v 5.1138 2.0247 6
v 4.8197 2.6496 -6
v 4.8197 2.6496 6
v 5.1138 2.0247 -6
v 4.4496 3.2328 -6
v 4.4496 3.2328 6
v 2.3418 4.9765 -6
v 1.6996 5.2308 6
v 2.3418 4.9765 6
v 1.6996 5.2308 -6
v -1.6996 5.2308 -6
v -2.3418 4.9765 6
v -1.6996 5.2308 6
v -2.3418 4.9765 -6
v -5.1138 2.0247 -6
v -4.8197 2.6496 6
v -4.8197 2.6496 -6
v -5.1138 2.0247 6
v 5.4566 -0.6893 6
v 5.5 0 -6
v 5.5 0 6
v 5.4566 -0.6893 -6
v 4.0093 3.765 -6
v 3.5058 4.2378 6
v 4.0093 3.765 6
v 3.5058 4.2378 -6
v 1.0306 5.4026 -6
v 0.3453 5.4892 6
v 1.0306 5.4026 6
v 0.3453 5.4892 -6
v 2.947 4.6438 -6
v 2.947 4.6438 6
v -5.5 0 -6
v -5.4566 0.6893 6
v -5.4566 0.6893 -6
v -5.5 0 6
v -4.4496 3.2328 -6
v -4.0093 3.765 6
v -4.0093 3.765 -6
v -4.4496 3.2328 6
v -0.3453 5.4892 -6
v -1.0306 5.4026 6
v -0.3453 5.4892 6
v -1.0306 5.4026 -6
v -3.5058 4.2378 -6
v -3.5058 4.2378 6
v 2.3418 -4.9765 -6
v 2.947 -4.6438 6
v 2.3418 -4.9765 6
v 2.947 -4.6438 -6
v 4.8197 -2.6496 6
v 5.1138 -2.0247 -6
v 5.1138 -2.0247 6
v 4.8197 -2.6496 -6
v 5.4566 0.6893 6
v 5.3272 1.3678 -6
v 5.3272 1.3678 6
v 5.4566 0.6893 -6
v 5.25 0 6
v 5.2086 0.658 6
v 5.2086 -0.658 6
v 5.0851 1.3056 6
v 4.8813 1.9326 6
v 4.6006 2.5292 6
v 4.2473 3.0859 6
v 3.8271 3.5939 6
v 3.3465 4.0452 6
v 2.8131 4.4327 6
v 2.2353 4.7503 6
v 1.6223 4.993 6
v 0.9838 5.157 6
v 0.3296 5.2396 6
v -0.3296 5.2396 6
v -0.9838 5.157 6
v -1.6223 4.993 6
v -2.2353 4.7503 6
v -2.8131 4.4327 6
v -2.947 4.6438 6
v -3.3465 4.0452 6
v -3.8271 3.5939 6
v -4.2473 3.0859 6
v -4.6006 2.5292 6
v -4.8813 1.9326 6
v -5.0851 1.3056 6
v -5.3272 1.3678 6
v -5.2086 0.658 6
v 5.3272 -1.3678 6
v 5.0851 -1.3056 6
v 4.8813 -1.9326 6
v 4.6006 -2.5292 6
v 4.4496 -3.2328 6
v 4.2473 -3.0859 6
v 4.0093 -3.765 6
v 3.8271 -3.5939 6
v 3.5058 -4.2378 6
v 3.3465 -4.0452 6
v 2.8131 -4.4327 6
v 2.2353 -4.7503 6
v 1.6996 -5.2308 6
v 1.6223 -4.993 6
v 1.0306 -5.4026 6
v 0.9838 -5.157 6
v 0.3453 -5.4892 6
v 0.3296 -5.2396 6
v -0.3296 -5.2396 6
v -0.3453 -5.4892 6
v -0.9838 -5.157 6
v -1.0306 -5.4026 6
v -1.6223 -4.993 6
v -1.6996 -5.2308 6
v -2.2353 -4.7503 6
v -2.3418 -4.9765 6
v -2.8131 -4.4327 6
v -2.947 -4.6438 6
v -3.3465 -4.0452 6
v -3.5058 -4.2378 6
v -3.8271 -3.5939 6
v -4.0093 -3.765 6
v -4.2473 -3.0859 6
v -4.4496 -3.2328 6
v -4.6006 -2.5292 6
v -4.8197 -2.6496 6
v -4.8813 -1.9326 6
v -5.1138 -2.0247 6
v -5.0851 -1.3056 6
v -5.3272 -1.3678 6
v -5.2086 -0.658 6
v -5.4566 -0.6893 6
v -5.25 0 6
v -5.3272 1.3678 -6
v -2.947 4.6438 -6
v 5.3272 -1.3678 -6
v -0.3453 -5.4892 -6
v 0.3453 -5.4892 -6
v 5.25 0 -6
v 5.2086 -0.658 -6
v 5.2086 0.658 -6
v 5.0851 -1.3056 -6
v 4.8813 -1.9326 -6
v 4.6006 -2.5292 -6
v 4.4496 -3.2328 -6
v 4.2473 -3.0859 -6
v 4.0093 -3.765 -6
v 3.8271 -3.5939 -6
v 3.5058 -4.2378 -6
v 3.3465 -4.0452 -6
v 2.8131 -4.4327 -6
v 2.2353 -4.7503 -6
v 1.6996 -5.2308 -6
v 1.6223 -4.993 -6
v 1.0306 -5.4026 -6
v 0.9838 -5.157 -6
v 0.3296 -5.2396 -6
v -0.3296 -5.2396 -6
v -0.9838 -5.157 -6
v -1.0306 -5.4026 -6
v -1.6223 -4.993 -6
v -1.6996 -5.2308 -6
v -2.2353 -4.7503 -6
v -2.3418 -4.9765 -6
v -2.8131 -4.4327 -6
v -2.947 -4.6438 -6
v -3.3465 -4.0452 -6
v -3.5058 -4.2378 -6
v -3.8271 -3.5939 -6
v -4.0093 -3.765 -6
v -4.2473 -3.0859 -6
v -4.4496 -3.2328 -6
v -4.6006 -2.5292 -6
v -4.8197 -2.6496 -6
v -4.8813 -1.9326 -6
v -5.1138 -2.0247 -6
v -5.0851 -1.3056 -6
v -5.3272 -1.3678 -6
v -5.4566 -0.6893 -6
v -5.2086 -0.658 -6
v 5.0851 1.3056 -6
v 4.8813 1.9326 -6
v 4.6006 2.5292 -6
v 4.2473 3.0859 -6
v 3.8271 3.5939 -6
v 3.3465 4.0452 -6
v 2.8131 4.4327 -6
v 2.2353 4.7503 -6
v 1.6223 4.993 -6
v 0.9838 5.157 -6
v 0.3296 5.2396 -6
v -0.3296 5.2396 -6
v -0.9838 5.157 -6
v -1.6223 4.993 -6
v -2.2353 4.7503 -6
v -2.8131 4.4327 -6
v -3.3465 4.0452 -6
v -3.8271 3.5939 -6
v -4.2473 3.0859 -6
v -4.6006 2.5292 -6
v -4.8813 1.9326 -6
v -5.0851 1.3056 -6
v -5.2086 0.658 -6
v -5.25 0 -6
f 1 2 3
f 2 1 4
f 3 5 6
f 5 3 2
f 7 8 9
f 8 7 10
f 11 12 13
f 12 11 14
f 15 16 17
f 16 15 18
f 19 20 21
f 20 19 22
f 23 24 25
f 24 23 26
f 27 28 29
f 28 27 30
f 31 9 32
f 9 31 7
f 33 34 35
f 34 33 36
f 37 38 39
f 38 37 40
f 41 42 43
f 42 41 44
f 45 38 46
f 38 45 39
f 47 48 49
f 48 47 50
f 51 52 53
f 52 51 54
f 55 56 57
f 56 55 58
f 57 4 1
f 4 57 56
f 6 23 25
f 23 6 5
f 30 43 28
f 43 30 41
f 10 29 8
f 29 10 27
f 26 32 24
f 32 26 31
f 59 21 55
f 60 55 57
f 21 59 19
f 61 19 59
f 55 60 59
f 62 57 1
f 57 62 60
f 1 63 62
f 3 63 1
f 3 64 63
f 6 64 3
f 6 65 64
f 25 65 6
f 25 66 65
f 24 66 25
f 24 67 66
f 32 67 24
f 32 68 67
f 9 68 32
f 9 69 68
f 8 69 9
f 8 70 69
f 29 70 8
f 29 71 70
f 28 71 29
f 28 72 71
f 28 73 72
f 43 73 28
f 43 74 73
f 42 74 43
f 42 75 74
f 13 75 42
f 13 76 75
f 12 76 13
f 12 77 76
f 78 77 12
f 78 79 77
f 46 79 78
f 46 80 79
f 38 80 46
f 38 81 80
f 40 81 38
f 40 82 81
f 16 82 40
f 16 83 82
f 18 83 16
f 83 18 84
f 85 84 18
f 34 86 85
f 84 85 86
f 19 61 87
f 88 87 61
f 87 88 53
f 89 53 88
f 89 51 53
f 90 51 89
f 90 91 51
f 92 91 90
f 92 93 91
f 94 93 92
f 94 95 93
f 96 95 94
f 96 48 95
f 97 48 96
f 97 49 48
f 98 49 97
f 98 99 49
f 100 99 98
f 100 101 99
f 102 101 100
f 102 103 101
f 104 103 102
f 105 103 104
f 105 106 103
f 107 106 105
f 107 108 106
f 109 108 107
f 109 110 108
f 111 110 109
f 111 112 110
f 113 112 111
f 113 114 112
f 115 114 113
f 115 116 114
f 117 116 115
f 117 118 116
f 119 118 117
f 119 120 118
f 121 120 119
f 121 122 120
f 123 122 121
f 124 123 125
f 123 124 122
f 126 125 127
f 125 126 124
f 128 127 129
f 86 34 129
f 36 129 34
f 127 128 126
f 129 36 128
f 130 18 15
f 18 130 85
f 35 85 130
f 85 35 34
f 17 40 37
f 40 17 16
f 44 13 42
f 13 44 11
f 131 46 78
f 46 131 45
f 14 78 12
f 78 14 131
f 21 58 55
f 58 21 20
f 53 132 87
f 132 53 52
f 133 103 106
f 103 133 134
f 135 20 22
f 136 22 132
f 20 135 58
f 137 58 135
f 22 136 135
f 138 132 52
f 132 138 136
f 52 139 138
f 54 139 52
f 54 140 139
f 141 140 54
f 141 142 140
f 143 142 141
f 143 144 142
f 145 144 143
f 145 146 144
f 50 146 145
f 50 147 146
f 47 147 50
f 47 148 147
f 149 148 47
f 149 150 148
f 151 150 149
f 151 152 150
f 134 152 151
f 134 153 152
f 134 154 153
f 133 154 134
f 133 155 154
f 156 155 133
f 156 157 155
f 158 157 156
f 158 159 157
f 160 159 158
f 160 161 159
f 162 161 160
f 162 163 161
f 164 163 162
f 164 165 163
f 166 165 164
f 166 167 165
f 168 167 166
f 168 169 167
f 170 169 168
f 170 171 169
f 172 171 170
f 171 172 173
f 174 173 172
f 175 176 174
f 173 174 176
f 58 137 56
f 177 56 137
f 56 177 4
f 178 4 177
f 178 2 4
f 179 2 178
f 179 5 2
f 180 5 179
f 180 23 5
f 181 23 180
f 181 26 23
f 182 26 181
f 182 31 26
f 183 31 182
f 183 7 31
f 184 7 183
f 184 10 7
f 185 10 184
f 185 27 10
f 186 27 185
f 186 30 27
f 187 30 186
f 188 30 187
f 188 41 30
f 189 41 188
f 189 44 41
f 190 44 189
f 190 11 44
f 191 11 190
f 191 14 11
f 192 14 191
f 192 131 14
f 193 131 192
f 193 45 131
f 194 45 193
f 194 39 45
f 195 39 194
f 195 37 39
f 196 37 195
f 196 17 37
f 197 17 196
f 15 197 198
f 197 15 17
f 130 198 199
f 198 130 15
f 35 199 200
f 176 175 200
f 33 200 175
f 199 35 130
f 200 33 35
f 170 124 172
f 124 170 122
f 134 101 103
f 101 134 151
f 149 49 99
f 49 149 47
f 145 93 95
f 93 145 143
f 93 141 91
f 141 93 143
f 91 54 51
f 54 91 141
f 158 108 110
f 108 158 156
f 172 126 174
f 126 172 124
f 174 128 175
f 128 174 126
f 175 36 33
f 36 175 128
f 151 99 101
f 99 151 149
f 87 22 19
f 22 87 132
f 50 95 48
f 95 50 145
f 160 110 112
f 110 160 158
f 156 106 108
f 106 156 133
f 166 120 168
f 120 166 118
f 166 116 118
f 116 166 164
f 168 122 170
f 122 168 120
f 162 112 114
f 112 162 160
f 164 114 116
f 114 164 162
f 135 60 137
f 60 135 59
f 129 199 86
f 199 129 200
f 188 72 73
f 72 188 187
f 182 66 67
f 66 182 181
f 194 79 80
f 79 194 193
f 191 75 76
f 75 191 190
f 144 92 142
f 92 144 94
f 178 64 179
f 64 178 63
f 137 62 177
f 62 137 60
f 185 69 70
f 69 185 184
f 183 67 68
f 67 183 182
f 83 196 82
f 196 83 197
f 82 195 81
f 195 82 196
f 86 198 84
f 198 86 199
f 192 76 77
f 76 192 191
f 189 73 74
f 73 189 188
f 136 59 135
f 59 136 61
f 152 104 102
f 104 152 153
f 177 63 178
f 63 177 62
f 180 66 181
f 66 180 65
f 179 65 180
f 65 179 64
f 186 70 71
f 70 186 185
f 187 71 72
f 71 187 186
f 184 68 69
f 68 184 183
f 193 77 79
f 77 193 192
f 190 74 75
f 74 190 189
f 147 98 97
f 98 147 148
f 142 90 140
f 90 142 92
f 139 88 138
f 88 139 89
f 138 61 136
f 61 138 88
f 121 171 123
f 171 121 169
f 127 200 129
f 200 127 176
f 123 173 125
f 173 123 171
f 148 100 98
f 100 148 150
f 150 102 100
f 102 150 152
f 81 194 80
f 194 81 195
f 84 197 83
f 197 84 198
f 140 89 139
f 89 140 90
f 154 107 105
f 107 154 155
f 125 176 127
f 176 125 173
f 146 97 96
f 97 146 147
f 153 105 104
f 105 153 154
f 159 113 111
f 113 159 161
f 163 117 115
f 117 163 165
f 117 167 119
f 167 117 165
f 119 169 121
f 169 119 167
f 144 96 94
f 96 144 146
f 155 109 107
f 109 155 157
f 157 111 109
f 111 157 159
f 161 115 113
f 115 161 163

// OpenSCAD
$fn = 50;


difference() {
	union() {
		translate(v = [0, 0, -6.0000000000]) {
			cylinder(h = 12, r = 5.5000000000);
		}
	}
	union() {
		translate(v = [0, 0, -100.0000000000]) {
			cylinder(h = 200, r = 5.2500000000);
		}
	}
}
